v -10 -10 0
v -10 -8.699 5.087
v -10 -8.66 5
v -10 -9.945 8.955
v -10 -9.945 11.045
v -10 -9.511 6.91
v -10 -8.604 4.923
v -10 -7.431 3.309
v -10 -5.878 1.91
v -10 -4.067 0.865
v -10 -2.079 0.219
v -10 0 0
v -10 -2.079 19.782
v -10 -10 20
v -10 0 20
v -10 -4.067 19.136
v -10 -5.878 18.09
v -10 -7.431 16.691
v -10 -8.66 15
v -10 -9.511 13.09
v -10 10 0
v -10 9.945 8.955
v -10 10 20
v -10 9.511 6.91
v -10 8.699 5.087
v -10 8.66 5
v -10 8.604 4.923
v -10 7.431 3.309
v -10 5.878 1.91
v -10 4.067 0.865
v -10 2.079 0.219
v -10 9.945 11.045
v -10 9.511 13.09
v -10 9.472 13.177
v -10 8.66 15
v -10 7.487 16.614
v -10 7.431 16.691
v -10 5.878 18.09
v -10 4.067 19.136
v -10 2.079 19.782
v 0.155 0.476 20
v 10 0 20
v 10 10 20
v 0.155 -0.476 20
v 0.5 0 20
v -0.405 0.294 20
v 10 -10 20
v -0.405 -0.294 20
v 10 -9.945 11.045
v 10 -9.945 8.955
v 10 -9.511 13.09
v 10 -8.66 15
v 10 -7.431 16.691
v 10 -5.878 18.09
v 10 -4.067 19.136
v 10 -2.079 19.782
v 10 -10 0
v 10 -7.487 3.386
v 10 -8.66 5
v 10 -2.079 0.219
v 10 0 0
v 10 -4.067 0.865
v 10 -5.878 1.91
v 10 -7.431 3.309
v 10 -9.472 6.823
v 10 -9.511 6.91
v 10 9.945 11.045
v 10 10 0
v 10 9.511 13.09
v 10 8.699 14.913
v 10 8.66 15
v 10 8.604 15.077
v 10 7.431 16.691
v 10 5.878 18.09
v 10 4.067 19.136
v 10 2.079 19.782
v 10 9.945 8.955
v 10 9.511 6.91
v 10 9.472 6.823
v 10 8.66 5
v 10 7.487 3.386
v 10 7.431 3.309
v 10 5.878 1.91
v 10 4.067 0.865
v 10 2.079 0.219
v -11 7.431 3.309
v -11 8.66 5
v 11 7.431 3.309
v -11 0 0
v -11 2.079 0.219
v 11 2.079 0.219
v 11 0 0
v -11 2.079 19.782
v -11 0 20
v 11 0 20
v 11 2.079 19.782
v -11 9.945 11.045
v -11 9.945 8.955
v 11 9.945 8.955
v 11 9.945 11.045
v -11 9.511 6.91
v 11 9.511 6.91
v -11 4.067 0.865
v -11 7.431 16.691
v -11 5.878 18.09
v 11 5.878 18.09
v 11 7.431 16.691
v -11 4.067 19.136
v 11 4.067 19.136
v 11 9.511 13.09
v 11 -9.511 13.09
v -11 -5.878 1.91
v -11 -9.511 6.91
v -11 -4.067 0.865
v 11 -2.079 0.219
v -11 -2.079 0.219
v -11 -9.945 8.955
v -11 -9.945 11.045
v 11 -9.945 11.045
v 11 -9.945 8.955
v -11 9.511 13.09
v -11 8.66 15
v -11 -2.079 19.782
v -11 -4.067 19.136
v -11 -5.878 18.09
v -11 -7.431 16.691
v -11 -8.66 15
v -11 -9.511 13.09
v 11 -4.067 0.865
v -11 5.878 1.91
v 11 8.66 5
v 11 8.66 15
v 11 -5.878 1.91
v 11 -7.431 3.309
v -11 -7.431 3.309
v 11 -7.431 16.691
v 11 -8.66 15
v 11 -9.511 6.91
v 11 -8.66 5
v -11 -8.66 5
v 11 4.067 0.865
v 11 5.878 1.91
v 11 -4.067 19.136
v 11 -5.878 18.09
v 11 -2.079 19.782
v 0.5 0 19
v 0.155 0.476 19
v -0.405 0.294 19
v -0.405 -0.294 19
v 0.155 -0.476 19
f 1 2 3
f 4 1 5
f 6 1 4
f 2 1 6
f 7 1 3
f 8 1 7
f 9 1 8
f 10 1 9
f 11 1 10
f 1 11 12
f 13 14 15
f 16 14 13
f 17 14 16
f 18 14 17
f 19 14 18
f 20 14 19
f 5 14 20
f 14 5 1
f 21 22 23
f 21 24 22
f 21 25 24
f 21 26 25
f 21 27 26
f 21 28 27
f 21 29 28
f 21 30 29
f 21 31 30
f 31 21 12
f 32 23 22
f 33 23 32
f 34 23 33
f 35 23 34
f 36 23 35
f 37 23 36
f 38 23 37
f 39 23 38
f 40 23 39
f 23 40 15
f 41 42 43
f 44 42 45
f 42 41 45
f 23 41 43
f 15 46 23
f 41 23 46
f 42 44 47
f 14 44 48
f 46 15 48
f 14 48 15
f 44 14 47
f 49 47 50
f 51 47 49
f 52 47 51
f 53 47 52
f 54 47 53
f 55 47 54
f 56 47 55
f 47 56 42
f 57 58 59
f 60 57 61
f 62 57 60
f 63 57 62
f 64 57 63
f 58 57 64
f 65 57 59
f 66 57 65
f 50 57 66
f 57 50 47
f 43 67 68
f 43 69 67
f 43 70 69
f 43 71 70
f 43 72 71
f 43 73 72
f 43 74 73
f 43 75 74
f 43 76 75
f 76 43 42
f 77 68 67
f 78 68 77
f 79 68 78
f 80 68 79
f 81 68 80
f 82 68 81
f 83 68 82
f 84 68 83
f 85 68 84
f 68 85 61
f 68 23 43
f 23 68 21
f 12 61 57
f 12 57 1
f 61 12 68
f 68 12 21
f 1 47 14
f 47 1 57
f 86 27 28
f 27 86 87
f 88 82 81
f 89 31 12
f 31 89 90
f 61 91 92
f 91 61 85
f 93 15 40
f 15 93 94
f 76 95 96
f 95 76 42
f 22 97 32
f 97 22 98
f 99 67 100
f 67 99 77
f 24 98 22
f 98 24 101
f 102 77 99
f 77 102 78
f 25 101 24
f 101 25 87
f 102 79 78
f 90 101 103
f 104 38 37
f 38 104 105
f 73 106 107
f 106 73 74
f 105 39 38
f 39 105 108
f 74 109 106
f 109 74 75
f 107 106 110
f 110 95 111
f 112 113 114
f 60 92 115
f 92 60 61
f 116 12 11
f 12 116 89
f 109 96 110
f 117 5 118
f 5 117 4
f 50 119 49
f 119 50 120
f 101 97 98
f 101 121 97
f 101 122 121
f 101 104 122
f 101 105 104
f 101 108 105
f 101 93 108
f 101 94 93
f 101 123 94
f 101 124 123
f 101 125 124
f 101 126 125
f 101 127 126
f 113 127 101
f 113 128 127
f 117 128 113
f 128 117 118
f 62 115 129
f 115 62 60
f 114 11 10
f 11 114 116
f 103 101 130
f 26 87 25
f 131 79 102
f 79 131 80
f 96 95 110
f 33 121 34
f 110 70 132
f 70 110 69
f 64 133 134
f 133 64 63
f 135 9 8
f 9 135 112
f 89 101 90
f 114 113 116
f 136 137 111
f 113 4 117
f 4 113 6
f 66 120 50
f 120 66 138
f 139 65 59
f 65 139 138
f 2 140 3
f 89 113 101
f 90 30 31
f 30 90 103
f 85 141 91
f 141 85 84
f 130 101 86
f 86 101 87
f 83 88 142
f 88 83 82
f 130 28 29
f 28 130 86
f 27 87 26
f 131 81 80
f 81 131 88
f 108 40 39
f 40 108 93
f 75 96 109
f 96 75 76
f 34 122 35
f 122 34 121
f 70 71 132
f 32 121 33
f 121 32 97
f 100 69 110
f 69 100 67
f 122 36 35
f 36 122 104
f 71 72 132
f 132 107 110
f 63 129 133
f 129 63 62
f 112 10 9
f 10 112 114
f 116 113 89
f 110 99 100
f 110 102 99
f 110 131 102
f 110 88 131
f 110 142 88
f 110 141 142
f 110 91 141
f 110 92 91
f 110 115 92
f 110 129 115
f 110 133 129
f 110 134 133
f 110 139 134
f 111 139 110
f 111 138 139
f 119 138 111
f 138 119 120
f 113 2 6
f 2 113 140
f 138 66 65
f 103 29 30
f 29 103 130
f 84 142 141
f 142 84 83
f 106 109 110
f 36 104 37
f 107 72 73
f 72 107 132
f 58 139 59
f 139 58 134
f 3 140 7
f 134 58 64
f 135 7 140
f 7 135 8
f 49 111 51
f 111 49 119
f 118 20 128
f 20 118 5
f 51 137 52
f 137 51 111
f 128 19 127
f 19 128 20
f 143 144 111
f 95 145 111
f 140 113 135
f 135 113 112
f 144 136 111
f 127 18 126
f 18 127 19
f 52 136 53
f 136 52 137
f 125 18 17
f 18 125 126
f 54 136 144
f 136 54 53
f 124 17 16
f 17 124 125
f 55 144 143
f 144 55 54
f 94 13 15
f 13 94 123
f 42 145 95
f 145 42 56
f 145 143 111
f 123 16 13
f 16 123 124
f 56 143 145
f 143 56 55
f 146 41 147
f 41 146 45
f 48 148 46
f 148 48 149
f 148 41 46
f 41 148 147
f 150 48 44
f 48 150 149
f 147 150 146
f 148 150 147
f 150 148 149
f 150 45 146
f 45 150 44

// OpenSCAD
cube_size = 20; // [10:Small,20:Medium,30:Large]

hole_diameter = 1; 
hole_radius = hole_diameter/2;

// How deep should the center hole be?
hole_depth = 1; // [0,1,5,50]

show_wheels = "yes"; // [yes,no]

// How thick should the side wheels be?
wheel_thickness = 1; // [1:40]

// ignore this variable!
// foo=1;

// don't turn functions into params!
function BEZ03(u) = pow((1-u), 3);

// ignore variable values
bing = 3+4;
baz = 3 / hole_depth;

difference() {
  union() {
    translate([0, 0, cube_size/2]) cube([cube_size,cube_size,cube_size], center=true);
    if (show_wheels == "yes") {
      translate([0, 0, cube_size/2]) rotate([0, 90, 0]) {
        cylinder(r=cube_size/2, h=cube_size+(wheel_thickness*2), center=true);
      }
    }
  }
  translate([0, 0, cube_size-hole_depth]) cylinder(r=hole_radius, h=hole_depth);
}
        
